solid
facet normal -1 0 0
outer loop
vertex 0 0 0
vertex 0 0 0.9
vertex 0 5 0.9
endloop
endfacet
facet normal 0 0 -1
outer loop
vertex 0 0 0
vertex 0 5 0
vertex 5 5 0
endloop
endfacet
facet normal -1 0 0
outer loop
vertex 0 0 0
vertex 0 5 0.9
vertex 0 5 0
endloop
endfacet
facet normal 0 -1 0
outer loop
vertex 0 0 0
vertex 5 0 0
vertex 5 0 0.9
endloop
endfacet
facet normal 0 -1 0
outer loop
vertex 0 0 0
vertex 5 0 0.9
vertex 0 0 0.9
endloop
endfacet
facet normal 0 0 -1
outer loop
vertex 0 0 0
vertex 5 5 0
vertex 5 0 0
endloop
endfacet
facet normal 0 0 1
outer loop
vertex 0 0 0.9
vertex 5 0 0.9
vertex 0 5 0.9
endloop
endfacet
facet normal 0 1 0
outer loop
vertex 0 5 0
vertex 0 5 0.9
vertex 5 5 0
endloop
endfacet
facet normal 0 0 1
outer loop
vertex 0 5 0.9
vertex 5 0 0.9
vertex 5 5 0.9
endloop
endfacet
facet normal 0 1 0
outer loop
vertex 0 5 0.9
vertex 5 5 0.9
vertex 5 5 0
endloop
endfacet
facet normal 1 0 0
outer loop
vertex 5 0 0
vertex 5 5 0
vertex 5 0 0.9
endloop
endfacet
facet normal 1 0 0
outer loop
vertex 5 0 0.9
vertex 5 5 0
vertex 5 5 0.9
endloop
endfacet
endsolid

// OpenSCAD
/* Warning, this is a very basic generator with a lot of approximation 
input data : [VQFN, NHX, 5x5x0.9mm, 40, , E, C04-00425E]
generated by com.zoubworld.electronics.cad.model3d.Basic
Date : Sun Feb 15 10:50:48 CET 2026
*/

//body
color("black")
translate([0,0,0])
cube([5.0,5.0,0.9], center=false);
